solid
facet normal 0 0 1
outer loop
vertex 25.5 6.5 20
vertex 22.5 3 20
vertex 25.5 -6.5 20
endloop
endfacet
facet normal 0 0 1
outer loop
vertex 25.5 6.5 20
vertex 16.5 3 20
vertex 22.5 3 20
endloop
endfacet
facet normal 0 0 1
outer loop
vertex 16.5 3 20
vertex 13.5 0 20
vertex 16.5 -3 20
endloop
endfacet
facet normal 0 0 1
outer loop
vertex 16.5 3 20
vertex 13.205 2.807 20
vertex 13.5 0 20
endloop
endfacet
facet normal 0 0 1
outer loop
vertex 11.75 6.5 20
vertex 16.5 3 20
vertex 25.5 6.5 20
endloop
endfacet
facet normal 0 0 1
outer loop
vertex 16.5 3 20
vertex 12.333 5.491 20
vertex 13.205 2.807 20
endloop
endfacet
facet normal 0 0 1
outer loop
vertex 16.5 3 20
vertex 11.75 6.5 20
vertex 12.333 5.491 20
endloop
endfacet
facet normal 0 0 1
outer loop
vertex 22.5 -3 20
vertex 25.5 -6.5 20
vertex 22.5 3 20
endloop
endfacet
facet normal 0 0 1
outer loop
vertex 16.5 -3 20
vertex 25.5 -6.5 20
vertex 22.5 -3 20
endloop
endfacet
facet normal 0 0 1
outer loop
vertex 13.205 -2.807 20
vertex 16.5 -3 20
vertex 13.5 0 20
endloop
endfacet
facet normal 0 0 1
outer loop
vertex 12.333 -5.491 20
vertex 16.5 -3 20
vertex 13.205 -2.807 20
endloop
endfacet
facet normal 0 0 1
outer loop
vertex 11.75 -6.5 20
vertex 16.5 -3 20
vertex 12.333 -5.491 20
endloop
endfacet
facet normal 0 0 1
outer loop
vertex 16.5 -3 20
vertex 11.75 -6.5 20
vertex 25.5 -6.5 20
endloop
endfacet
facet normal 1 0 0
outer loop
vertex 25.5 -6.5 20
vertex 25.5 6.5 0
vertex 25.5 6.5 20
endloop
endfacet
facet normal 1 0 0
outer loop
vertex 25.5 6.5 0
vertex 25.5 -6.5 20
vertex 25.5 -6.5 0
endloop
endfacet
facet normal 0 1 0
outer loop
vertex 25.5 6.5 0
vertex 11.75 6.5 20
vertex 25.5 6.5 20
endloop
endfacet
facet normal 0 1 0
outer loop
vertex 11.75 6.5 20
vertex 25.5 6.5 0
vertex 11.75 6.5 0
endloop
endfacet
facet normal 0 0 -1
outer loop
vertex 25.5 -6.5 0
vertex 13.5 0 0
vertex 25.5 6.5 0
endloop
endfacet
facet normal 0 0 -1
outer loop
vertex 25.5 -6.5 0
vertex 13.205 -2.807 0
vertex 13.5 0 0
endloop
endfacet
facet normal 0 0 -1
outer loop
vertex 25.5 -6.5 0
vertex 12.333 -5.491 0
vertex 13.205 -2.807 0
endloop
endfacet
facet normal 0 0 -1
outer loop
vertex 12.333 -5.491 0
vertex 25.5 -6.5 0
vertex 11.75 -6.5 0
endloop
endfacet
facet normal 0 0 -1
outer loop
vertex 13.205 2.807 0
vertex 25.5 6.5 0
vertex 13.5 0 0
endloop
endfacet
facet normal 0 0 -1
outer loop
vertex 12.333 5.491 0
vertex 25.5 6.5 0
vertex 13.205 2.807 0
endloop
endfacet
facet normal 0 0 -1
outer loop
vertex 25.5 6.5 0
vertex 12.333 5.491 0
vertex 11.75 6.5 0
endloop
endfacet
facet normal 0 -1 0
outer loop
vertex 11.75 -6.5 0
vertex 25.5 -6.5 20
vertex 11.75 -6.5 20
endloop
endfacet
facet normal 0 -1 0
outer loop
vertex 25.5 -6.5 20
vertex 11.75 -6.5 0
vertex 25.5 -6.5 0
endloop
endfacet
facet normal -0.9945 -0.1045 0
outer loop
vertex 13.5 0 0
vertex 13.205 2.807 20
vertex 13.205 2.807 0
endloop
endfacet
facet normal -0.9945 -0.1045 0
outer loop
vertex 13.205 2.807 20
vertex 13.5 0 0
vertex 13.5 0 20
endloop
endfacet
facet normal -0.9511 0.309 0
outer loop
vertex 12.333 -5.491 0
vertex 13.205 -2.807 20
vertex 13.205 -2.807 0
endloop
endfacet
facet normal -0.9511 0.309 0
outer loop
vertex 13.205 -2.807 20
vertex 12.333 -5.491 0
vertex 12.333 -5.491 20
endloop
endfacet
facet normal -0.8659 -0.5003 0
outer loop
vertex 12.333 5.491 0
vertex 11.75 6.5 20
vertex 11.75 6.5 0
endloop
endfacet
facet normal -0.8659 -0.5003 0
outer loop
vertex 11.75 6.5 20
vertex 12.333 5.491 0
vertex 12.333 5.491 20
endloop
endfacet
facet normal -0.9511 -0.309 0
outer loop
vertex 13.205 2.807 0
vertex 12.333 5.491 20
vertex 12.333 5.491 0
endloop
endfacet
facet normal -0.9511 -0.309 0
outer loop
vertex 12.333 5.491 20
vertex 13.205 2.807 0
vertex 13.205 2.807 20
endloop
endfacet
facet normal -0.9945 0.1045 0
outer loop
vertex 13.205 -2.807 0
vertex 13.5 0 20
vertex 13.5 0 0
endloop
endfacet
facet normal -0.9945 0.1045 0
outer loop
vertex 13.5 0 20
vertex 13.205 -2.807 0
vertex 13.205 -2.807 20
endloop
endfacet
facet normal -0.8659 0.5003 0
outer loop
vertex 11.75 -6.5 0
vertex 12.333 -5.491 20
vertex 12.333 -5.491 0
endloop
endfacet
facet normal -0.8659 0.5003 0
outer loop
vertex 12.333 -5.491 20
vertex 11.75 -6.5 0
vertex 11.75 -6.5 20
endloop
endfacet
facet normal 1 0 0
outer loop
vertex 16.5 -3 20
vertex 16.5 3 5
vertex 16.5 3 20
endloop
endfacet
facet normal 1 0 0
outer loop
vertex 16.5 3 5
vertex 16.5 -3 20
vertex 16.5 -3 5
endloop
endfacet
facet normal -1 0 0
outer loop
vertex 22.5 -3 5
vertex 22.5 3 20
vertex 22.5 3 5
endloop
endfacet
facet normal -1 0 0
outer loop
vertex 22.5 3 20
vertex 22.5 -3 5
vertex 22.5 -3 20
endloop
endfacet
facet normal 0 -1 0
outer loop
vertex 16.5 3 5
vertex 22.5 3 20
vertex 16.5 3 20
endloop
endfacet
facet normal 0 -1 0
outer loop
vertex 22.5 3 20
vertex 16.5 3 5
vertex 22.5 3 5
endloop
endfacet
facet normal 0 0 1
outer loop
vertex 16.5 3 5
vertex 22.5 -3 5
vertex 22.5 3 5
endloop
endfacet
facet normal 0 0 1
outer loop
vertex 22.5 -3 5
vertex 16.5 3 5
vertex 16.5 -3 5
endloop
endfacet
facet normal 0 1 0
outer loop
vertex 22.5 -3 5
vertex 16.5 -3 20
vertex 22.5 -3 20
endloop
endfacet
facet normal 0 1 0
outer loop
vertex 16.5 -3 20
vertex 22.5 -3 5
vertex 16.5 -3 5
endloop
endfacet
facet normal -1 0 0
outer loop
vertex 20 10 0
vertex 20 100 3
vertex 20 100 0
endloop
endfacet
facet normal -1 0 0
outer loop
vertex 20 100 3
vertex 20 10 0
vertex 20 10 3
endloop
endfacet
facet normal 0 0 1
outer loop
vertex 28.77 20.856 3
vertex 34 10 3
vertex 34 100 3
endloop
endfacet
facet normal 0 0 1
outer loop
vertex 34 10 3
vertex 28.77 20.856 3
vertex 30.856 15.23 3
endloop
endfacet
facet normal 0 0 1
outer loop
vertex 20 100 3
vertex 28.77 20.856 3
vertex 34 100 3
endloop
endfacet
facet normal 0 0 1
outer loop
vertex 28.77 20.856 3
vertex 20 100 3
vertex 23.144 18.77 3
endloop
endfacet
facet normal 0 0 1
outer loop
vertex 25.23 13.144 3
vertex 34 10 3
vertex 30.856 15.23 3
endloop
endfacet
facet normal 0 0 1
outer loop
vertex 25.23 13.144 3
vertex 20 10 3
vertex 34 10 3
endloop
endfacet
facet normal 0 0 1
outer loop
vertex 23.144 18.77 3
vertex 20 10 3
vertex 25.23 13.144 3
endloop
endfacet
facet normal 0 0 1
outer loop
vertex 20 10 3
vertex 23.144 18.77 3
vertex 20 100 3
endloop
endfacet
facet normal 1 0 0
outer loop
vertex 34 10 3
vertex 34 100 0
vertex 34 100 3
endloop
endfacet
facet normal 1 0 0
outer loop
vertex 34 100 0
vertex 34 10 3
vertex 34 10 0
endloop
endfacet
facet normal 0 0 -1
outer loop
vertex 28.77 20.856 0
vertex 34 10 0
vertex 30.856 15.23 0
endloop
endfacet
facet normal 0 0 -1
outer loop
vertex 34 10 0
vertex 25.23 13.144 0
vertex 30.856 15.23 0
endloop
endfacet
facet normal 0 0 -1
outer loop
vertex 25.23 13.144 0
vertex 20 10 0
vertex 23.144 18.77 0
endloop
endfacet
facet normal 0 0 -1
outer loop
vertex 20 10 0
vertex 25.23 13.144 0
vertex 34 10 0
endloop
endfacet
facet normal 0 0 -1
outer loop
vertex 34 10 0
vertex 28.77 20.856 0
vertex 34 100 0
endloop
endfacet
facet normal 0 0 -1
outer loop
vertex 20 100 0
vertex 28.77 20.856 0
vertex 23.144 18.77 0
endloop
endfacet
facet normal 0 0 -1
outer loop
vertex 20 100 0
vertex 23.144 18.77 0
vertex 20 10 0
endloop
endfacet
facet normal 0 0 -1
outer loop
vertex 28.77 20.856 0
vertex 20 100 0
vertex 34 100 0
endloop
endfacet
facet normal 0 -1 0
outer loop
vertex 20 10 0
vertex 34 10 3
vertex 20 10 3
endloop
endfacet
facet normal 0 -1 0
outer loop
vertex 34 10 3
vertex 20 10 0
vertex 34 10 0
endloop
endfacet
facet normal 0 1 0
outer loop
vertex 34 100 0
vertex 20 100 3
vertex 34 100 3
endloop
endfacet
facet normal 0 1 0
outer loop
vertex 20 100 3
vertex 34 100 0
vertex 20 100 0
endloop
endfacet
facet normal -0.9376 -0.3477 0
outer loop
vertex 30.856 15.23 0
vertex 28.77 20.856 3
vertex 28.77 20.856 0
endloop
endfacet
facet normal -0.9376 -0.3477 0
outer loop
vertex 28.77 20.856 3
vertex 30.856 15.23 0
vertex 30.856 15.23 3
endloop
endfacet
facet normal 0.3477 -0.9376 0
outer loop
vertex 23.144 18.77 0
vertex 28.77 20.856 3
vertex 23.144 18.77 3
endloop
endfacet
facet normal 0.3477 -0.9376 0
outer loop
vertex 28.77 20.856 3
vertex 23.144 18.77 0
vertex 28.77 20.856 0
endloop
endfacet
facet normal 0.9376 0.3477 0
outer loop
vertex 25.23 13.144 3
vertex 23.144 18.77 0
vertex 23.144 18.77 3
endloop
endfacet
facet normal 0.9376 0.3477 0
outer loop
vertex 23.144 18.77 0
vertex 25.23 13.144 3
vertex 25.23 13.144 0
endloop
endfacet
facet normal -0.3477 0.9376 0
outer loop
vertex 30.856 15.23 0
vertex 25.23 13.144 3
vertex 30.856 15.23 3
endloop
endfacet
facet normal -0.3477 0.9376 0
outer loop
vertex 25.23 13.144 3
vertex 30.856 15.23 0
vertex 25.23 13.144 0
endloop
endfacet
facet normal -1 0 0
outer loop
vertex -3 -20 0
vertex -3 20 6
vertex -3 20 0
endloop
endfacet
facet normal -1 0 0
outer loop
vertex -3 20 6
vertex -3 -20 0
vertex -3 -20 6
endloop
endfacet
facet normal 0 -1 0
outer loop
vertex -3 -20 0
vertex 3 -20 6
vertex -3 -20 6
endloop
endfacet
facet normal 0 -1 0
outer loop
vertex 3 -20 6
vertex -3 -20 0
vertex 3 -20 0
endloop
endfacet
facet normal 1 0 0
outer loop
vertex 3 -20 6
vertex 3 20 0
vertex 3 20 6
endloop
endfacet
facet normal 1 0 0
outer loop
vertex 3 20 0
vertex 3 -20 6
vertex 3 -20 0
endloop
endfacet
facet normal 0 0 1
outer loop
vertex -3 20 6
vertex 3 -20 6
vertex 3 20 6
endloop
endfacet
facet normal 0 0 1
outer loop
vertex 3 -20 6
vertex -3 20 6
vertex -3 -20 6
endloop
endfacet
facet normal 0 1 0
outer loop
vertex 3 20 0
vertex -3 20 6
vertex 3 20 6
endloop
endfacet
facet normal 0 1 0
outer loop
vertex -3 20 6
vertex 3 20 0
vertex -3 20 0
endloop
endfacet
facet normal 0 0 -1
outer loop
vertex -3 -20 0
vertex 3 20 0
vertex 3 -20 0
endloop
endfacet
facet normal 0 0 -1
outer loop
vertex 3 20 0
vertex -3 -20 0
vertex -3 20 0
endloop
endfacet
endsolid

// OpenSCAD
h = 35;
innerr = 11.5;
outerr = 13.5;
pennyradius = 10;
pennyheight = 1.52;
length1 = 10;
motorlength = 24;
servothickness = 12;
armlength = 90;

module rod(rodheight) {
    translate([-3, -3, 0]) {
        cube([6, 6, rodheight]);
    }
}

module armholder() {
    difference() {
        translate([outerr - 3, -6.5, 0]) {
            cube([15, 13, 20]);
        }
        cylinder(h, outerr, outerr);
    }
}

module holderwrod(depth) {
    difference() {
        armholder();
        translate([outerr + 6, 0, 20 - depth]) {
            rod(depth);
        }
    }
}

module armextend() {
    cube([14, armlength, 3]);
}

module transarm() {
    translate([20, 10, 0]) {
        armextend();
    }
}

module armwhole(degrees) {
    difference() {
        transarm();
        translate([27, 17, 0]) {
            rotate([0, 0, degrees]) {
                rod(3);
            }
        }
    }
}

translate([0, 20, 3]) {
    rotate ([90, 0, 0]) rod(40);
}

holderwrod(15);

armwhole(20.3441013);
